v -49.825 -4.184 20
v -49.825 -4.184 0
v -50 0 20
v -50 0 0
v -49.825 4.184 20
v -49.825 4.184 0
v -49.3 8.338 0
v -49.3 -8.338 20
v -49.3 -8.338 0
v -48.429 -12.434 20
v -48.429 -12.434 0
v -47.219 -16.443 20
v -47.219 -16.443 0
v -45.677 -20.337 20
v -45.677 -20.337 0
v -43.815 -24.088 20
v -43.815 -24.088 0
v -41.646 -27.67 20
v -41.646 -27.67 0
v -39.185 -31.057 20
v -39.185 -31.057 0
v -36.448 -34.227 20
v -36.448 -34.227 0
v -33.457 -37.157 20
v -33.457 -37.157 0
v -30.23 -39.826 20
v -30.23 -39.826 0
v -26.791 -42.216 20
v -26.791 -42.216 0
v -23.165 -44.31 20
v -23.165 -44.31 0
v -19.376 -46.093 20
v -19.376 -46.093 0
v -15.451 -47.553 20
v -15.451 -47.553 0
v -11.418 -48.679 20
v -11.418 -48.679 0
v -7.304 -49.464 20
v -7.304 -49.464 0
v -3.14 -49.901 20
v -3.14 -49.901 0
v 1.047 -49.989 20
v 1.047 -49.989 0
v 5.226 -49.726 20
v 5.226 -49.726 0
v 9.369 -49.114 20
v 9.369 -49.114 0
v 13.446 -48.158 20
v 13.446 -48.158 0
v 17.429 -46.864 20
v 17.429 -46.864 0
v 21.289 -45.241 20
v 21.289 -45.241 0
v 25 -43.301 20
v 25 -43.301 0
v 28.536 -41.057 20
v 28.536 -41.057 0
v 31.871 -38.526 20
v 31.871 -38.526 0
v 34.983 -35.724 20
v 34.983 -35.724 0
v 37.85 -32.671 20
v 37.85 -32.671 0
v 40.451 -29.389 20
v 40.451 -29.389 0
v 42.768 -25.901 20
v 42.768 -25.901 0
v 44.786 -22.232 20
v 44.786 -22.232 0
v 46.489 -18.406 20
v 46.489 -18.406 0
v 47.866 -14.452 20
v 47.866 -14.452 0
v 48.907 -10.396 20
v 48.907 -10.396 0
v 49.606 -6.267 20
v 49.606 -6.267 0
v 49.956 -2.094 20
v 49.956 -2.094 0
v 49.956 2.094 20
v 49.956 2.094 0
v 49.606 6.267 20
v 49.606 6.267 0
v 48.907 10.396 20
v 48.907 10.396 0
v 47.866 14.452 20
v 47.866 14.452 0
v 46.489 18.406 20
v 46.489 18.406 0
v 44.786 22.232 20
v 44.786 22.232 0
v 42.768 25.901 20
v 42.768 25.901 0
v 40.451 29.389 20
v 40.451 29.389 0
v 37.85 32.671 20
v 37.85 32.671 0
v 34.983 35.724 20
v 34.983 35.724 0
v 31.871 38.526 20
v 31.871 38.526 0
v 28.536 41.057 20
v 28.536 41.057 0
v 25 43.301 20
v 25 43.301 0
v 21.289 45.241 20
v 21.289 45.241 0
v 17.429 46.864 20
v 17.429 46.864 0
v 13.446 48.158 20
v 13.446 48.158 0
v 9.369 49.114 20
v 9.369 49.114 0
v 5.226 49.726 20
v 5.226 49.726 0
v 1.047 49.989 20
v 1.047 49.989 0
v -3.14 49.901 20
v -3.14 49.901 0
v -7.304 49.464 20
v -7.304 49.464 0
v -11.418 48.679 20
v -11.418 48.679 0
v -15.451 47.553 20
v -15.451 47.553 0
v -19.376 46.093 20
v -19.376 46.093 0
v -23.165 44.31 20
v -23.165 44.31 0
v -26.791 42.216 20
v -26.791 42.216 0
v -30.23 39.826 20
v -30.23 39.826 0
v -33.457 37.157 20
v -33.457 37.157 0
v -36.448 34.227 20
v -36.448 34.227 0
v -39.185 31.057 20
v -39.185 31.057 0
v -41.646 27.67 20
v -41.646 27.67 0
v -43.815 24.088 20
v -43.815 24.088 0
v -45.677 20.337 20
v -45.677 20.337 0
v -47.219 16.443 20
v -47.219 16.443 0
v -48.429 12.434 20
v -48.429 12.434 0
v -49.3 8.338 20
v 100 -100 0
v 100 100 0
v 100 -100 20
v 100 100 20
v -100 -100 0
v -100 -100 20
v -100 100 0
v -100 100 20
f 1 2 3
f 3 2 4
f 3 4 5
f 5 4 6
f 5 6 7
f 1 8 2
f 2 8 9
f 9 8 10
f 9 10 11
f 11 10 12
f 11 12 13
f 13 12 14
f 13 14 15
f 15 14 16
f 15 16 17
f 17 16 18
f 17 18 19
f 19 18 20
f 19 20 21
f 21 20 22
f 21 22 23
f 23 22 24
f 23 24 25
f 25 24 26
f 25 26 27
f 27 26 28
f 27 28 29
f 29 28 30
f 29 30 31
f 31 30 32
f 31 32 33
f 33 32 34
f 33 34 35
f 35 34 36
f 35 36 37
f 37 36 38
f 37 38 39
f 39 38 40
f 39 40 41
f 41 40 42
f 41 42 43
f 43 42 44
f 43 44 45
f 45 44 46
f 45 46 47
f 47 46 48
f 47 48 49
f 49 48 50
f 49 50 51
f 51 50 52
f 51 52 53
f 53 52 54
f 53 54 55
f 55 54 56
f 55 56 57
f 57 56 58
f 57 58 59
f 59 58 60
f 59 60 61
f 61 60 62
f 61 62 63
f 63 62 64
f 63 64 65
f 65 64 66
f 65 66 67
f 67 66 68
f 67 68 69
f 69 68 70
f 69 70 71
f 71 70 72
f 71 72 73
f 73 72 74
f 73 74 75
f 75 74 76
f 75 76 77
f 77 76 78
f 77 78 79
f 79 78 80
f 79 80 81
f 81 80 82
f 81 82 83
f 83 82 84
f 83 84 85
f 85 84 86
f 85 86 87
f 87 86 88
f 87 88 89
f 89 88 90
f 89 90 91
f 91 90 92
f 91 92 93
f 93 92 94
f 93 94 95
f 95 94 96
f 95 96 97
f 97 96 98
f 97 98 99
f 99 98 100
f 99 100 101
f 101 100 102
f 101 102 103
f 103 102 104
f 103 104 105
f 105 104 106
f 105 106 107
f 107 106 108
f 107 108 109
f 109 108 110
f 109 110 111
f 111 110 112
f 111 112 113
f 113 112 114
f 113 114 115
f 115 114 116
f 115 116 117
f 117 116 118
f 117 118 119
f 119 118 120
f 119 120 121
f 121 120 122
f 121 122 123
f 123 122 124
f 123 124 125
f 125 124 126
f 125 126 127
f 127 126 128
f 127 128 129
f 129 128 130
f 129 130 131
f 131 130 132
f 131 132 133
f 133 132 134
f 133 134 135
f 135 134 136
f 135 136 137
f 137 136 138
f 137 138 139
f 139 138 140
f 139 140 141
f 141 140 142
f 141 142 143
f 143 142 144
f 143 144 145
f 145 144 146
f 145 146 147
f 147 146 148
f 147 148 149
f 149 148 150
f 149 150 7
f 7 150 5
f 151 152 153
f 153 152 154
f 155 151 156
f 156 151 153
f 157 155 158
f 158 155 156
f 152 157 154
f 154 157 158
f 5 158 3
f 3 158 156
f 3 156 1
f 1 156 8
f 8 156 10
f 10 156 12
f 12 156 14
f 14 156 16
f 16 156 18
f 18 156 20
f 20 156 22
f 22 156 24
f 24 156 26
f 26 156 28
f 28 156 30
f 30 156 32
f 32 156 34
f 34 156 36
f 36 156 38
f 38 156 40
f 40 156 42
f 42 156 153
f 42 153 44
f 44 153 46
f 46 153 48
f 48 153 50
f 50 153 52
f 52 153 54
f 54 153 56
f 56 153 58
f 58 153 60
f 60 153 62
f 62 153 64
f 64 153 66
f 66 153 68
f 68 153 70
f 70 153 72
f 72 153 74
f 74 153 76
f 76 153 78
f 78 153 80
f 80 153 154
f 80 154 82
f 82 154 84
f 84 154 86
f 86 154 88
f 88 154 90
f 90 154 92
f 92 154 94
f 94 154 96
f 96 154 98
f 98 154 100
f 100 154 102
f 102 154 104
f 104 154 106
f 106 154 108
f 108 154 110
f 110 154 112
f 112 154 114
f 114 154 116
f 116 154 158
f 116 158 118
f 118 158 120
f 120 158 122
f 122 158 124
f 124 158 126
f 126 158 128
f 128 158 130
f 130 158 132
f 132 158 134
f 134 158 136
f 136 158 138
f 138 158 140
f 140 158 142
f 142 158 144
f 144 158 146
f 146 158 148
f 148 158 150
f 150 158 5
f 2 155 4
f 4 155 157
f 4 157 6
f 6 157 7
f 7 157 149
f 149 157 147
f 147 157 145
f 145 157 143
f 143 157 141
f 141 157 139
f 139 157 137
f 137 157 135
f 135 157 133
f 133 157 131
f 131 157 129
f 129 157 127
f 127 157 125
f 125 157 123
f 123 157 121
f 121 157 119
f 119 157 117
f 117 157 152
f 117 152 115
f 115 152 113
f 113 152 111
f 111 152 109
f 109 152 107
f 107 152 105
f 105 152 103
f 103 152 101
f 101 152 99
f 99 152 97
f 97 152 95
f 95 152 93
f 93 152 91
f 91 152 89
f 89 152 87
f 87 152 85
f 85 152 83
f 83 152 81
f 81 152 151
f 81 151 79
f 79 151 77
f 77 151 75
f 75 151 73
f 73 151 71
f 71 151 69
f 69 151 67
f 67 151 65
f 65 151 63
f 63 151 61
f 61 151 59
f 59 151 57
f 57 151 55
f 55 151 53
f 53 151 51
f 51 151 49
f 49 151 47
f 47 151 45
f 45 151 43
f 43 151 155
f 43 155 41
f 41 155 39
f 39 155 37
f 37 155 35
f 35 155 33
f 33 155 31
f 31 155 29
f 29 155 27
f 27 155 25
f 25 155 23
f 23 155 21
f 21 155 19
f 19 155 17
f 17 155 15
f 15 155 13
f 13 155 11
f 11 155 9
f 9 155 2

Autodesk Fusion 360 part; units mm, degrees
sketch "Sketch1" plane through (0, 0, 0) normal (0, 0, 1) x (1, 0, 0) in component "Washer"
  line L0 (100, -100) -> (-100, -100)
  line L1 (-100, -100) -> (-100, 100)
  line L2 (-100, 100) -> (100, 100)
  line L3 (100, 100) -> (100, -100)
  line L4 (100, -100) -> (-100, 100) construction
  line L5 (-100, -100) -> (100, 100) construction
  circle A0 centre (0, 0) radius 50
  dimension "d1" = 200
  dimension "d2" = 100
extrude "Extrude1" add sketch "Sketch1" along normal blind 20 in component "Washer"
component "Washer" placed x (1, 0, 0) y (0, 1, 0) z (0, 0, 1) at (0, 0, 0)
equation "d2 = d1 * 0.5"
